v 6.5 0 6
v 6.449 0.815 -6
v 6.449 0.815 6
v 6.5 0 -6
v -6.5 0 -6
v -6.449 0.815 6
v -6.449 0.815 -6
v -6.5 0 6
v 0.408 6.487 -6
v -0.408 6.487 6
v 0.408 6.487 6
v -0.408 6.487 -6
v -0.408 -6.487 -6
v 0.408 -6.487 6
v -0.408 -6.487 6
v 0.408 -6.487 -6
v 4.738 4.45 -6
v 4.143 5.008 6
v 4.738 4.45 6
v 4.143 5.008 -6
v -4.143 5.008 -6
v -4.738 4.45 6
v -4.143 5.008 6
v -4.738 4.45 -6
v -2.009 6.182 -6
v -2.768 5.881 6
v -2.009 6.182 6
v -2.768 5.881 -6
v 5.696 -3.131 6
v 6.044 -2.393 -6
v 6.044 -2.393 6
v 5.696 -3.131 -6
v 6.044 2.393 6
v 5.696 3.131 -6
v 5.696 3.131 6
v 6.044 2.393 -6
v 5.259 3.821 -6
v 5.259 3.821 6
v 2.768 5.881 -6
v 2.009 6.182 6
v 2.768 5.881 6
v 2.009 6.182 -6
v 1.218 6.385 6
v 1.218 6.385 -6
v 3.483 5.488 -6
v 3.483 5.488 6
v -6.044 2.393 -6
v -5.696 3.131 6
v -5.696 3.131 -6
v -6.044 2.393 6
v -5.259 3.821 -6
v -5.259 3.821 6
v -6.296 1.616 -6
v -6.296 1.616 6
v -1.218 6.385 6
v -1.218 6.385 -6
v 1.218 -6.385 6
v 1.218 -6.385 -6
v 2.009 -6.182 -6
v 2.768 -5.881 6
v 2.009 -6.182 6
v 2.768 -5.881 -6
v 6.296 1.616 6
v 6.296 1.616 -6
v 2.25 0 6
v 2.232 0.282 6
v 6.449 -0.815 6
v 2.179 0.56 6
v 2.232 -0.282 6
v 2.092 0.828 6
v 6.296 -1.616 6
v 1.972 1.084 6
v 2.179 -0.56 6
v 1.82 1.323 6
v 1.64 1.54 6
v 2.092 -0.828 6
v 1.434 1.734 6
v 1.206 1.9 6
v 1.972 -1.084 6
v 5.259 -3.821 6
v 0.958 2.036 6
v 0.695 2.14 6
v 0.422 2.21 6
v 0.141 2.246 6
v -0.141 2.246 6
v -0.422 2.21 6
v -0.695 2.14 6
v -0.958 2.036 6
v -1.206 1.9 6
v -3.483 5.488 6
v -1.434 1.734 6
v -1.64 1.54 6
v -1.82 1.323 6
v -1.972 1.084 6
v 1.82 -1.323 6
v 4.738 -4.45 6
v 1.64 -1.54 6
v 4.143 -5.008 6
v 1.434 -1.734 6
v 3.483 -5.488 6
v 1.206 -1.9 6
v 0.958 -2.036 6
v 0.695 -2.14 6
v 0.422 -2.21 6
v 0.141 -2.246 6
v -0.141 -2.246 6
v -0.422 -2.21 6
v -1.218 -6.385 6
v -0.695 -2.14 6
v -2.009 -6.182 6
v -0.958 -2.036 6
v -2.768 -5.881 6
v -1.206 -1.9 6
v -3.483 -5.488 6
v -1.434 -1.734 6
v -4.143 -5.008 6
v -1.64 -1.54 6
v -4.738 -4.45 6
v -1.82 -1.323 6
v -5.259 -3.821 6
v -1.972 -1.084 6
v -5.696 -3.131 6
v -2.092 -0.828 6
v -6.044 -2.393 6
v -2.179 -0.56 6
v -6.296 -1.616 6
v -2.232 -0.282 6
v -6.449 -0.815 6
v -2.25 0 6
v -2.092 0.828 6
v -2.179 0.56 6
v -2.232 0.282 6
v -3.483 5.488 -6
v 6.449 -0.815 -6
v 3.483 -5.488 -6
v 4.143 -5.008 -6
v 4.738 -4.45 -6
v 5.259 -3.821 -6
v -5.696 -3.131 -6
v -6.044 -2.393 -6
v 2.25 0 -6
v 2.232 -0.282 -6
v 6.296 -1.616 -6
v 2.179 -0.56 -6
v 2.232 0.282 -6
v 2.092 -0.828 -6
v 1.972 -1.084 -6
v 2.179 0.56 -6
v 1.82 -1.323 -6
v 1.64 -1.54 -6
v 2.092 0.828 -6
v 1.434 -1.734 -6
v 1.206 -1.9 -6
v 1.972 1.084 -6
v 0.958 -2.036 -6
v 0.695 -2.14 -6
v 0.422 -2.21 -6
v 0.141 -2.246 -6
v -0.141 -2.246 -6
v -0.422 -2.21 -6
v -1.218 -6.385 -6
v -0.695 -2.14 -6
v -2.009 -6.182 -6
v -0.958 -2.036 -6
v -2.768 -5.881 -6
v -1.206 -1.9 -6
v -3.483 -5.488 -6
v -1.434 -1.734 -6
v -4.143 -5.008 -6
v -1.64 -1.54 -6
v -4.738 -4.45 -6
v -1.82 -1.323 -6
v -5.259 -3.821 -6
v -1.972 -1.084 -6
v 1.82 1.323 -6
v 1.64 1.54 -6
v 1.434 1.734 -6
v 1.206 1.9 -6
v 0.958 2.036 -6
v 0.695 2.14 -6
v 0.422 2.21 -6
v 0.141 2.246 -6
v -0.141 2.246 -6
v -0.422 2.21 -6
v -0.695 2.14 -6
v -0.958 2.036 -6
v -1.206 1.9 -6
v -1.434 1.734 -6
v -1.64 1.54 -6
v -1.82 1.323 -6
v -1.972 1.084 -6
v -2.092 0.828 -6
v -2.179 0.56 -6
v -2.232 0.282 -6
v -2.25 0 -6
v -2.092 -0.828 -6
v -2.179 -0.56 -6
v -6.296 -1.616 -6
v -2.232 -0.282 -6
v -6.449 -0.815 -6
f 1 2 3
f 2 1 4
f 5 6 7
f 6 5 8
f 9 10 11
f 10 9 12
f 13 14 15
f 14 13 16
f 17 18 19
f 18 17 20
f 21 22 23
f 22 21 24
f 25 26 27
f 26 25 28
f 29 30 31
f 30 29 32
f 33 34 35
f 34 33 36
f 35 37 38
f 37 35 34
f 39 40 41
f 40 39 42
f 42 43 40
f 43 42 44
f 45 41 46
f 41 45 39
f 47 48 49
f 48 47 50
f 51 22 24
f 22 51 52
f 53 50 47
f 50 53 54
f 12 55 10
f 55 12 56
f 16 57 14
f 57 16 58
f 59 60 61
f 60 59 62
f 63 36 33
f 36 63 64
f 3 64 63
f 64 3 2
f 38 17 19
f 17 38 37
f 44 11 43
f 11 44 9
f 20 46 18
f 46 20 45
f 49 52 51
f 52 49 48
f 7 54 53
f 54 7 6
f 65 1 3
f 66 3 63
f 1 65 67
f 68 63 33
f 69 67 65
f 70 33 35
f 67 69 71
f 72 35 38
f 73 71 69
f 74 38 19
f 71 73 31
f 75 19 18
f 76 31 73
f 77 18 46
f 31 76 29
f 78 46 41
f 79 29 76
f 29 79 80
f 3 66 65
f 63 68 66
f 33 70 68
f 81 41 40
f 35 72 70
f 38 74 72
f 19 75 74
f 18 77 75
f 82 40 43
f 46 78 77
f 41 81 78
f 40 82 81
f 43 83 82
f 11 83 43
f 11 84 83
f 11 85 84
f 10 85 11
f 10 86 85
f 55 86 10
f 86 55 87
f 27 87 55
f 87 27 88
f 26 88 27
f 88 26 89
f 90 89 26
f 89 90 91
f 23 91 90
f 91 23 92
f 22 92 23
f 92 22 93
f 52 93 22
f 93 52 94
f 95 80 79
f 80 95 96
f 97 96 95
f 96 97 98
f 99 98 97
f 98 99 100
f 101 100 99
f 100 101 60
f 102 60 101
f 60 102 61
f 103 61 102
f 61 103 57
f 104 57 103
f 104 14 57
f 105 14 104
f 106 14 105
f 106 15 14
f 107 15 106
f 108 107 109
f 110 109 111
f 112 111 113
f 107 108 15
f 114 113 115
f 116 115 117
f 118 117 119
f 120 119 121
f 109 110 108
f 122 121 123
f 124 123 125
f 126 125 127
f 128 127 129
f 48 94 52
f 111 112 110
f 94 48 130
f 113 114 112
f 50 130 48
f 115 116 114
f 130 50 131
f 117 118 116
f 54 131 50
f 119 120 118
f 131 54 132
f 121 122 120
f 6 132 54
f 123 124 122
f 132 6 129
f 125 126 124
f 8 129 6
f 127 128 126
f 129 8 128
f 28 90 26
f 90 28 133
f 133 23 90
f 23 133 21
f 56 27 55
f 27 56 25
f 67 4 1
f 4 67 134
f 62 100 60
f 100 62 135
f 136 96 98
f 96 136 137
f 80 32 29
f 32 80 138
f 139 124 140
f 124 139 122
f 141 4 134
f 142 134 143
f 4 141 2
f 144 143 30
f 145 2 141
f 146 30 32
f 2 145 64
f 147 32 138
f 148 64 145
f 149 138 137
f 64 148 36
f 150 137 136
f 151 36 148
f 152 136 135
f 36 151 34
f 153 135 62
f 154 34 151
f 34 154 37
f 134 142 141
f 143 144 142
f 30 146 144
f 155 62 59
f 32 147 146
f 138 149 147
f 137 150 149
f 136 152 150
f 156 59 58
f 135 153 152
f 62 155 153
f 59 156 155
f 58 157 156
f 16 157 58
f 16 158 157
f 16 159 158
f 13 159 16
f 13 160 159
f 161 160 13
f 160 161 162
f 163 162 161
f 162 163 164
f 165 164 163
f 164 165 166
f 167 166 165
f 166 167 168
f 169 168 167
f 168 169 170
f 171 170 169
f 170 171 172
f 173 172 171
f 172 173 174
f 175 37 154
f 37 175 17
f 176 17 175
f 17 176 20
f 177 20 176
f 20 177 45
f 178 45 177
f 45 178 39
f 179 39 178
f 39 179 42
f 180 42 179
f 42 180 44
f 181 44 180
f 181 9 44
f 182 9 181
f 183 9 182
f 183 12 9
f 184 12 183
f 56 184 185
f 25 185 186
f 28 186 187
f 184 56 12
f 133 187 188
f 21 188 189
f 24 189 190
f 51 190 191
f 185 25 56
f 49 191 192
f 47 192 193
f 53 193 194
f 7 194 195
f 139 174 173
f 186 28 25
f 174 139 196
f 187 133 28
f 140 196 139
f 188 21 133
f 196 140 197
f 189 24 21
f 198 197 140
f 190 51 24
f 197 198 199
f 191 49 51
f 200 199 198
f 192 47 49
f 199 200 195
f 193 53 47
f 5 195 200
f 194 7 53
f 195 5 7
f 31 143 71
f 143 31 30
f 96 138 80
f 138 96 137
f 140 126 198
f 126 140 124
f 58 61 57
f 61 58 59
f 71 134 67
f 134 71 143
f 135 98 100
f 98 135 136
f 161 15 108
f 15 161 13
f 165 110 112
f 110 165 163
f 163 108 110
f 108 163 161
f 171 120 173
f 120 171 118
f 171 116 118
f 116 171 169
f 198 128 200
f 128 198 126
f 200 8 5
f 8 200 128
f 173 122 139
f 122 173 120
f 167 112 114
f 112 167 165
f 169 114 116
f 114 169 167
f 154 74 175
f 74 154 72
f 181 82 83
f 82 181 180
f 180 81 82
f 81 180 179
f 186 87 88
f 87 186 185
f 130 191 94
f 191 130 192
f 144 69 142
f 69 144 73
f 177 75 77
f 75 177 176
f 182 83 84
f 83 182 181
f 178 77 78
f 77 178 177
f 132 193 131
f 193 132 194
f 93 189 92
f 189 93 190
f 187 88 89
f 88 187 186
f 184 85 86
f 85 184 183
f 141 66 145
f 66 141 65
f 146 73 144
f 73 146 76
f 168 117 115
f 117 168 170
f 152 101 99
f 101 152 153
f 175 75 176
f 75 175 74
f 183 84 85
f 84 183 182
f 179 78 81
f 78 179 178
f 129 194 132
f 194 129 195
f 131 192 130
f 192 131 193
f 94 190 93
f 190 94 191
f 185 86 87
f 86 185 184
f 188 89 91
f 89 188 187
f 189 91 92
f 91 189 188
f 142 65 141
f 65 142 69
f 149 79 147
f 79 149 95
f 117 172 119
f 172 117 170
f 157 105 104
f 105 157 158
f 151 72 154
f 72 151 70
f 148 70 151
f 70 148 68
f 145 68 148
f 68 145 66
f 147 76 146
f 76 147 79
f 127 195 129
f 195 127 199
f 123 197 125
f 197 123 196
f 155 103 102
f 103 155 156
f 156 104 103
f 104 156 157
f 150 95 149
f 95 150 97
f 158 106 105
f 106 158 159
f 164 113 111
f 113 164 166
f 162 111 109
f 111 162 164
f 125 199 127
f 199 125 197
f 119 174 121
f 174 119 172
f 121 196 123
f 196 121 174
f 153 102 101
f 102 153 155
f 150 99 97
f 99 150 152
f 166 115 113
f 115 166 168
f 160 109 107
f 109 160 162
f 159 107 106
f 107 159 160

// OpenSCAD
$fn = 50;


difference() {
	union() {
		translate(v = [0, 0, -6.0000000000]) {
			cylinder(h = 12, r = 6.5000000000);
		}
	}
	union() {
		translate(v = [0, 0, -100.0000000000]) {
			cylinder(h = 200, r = 2.2500000000);
		}
	}
}
